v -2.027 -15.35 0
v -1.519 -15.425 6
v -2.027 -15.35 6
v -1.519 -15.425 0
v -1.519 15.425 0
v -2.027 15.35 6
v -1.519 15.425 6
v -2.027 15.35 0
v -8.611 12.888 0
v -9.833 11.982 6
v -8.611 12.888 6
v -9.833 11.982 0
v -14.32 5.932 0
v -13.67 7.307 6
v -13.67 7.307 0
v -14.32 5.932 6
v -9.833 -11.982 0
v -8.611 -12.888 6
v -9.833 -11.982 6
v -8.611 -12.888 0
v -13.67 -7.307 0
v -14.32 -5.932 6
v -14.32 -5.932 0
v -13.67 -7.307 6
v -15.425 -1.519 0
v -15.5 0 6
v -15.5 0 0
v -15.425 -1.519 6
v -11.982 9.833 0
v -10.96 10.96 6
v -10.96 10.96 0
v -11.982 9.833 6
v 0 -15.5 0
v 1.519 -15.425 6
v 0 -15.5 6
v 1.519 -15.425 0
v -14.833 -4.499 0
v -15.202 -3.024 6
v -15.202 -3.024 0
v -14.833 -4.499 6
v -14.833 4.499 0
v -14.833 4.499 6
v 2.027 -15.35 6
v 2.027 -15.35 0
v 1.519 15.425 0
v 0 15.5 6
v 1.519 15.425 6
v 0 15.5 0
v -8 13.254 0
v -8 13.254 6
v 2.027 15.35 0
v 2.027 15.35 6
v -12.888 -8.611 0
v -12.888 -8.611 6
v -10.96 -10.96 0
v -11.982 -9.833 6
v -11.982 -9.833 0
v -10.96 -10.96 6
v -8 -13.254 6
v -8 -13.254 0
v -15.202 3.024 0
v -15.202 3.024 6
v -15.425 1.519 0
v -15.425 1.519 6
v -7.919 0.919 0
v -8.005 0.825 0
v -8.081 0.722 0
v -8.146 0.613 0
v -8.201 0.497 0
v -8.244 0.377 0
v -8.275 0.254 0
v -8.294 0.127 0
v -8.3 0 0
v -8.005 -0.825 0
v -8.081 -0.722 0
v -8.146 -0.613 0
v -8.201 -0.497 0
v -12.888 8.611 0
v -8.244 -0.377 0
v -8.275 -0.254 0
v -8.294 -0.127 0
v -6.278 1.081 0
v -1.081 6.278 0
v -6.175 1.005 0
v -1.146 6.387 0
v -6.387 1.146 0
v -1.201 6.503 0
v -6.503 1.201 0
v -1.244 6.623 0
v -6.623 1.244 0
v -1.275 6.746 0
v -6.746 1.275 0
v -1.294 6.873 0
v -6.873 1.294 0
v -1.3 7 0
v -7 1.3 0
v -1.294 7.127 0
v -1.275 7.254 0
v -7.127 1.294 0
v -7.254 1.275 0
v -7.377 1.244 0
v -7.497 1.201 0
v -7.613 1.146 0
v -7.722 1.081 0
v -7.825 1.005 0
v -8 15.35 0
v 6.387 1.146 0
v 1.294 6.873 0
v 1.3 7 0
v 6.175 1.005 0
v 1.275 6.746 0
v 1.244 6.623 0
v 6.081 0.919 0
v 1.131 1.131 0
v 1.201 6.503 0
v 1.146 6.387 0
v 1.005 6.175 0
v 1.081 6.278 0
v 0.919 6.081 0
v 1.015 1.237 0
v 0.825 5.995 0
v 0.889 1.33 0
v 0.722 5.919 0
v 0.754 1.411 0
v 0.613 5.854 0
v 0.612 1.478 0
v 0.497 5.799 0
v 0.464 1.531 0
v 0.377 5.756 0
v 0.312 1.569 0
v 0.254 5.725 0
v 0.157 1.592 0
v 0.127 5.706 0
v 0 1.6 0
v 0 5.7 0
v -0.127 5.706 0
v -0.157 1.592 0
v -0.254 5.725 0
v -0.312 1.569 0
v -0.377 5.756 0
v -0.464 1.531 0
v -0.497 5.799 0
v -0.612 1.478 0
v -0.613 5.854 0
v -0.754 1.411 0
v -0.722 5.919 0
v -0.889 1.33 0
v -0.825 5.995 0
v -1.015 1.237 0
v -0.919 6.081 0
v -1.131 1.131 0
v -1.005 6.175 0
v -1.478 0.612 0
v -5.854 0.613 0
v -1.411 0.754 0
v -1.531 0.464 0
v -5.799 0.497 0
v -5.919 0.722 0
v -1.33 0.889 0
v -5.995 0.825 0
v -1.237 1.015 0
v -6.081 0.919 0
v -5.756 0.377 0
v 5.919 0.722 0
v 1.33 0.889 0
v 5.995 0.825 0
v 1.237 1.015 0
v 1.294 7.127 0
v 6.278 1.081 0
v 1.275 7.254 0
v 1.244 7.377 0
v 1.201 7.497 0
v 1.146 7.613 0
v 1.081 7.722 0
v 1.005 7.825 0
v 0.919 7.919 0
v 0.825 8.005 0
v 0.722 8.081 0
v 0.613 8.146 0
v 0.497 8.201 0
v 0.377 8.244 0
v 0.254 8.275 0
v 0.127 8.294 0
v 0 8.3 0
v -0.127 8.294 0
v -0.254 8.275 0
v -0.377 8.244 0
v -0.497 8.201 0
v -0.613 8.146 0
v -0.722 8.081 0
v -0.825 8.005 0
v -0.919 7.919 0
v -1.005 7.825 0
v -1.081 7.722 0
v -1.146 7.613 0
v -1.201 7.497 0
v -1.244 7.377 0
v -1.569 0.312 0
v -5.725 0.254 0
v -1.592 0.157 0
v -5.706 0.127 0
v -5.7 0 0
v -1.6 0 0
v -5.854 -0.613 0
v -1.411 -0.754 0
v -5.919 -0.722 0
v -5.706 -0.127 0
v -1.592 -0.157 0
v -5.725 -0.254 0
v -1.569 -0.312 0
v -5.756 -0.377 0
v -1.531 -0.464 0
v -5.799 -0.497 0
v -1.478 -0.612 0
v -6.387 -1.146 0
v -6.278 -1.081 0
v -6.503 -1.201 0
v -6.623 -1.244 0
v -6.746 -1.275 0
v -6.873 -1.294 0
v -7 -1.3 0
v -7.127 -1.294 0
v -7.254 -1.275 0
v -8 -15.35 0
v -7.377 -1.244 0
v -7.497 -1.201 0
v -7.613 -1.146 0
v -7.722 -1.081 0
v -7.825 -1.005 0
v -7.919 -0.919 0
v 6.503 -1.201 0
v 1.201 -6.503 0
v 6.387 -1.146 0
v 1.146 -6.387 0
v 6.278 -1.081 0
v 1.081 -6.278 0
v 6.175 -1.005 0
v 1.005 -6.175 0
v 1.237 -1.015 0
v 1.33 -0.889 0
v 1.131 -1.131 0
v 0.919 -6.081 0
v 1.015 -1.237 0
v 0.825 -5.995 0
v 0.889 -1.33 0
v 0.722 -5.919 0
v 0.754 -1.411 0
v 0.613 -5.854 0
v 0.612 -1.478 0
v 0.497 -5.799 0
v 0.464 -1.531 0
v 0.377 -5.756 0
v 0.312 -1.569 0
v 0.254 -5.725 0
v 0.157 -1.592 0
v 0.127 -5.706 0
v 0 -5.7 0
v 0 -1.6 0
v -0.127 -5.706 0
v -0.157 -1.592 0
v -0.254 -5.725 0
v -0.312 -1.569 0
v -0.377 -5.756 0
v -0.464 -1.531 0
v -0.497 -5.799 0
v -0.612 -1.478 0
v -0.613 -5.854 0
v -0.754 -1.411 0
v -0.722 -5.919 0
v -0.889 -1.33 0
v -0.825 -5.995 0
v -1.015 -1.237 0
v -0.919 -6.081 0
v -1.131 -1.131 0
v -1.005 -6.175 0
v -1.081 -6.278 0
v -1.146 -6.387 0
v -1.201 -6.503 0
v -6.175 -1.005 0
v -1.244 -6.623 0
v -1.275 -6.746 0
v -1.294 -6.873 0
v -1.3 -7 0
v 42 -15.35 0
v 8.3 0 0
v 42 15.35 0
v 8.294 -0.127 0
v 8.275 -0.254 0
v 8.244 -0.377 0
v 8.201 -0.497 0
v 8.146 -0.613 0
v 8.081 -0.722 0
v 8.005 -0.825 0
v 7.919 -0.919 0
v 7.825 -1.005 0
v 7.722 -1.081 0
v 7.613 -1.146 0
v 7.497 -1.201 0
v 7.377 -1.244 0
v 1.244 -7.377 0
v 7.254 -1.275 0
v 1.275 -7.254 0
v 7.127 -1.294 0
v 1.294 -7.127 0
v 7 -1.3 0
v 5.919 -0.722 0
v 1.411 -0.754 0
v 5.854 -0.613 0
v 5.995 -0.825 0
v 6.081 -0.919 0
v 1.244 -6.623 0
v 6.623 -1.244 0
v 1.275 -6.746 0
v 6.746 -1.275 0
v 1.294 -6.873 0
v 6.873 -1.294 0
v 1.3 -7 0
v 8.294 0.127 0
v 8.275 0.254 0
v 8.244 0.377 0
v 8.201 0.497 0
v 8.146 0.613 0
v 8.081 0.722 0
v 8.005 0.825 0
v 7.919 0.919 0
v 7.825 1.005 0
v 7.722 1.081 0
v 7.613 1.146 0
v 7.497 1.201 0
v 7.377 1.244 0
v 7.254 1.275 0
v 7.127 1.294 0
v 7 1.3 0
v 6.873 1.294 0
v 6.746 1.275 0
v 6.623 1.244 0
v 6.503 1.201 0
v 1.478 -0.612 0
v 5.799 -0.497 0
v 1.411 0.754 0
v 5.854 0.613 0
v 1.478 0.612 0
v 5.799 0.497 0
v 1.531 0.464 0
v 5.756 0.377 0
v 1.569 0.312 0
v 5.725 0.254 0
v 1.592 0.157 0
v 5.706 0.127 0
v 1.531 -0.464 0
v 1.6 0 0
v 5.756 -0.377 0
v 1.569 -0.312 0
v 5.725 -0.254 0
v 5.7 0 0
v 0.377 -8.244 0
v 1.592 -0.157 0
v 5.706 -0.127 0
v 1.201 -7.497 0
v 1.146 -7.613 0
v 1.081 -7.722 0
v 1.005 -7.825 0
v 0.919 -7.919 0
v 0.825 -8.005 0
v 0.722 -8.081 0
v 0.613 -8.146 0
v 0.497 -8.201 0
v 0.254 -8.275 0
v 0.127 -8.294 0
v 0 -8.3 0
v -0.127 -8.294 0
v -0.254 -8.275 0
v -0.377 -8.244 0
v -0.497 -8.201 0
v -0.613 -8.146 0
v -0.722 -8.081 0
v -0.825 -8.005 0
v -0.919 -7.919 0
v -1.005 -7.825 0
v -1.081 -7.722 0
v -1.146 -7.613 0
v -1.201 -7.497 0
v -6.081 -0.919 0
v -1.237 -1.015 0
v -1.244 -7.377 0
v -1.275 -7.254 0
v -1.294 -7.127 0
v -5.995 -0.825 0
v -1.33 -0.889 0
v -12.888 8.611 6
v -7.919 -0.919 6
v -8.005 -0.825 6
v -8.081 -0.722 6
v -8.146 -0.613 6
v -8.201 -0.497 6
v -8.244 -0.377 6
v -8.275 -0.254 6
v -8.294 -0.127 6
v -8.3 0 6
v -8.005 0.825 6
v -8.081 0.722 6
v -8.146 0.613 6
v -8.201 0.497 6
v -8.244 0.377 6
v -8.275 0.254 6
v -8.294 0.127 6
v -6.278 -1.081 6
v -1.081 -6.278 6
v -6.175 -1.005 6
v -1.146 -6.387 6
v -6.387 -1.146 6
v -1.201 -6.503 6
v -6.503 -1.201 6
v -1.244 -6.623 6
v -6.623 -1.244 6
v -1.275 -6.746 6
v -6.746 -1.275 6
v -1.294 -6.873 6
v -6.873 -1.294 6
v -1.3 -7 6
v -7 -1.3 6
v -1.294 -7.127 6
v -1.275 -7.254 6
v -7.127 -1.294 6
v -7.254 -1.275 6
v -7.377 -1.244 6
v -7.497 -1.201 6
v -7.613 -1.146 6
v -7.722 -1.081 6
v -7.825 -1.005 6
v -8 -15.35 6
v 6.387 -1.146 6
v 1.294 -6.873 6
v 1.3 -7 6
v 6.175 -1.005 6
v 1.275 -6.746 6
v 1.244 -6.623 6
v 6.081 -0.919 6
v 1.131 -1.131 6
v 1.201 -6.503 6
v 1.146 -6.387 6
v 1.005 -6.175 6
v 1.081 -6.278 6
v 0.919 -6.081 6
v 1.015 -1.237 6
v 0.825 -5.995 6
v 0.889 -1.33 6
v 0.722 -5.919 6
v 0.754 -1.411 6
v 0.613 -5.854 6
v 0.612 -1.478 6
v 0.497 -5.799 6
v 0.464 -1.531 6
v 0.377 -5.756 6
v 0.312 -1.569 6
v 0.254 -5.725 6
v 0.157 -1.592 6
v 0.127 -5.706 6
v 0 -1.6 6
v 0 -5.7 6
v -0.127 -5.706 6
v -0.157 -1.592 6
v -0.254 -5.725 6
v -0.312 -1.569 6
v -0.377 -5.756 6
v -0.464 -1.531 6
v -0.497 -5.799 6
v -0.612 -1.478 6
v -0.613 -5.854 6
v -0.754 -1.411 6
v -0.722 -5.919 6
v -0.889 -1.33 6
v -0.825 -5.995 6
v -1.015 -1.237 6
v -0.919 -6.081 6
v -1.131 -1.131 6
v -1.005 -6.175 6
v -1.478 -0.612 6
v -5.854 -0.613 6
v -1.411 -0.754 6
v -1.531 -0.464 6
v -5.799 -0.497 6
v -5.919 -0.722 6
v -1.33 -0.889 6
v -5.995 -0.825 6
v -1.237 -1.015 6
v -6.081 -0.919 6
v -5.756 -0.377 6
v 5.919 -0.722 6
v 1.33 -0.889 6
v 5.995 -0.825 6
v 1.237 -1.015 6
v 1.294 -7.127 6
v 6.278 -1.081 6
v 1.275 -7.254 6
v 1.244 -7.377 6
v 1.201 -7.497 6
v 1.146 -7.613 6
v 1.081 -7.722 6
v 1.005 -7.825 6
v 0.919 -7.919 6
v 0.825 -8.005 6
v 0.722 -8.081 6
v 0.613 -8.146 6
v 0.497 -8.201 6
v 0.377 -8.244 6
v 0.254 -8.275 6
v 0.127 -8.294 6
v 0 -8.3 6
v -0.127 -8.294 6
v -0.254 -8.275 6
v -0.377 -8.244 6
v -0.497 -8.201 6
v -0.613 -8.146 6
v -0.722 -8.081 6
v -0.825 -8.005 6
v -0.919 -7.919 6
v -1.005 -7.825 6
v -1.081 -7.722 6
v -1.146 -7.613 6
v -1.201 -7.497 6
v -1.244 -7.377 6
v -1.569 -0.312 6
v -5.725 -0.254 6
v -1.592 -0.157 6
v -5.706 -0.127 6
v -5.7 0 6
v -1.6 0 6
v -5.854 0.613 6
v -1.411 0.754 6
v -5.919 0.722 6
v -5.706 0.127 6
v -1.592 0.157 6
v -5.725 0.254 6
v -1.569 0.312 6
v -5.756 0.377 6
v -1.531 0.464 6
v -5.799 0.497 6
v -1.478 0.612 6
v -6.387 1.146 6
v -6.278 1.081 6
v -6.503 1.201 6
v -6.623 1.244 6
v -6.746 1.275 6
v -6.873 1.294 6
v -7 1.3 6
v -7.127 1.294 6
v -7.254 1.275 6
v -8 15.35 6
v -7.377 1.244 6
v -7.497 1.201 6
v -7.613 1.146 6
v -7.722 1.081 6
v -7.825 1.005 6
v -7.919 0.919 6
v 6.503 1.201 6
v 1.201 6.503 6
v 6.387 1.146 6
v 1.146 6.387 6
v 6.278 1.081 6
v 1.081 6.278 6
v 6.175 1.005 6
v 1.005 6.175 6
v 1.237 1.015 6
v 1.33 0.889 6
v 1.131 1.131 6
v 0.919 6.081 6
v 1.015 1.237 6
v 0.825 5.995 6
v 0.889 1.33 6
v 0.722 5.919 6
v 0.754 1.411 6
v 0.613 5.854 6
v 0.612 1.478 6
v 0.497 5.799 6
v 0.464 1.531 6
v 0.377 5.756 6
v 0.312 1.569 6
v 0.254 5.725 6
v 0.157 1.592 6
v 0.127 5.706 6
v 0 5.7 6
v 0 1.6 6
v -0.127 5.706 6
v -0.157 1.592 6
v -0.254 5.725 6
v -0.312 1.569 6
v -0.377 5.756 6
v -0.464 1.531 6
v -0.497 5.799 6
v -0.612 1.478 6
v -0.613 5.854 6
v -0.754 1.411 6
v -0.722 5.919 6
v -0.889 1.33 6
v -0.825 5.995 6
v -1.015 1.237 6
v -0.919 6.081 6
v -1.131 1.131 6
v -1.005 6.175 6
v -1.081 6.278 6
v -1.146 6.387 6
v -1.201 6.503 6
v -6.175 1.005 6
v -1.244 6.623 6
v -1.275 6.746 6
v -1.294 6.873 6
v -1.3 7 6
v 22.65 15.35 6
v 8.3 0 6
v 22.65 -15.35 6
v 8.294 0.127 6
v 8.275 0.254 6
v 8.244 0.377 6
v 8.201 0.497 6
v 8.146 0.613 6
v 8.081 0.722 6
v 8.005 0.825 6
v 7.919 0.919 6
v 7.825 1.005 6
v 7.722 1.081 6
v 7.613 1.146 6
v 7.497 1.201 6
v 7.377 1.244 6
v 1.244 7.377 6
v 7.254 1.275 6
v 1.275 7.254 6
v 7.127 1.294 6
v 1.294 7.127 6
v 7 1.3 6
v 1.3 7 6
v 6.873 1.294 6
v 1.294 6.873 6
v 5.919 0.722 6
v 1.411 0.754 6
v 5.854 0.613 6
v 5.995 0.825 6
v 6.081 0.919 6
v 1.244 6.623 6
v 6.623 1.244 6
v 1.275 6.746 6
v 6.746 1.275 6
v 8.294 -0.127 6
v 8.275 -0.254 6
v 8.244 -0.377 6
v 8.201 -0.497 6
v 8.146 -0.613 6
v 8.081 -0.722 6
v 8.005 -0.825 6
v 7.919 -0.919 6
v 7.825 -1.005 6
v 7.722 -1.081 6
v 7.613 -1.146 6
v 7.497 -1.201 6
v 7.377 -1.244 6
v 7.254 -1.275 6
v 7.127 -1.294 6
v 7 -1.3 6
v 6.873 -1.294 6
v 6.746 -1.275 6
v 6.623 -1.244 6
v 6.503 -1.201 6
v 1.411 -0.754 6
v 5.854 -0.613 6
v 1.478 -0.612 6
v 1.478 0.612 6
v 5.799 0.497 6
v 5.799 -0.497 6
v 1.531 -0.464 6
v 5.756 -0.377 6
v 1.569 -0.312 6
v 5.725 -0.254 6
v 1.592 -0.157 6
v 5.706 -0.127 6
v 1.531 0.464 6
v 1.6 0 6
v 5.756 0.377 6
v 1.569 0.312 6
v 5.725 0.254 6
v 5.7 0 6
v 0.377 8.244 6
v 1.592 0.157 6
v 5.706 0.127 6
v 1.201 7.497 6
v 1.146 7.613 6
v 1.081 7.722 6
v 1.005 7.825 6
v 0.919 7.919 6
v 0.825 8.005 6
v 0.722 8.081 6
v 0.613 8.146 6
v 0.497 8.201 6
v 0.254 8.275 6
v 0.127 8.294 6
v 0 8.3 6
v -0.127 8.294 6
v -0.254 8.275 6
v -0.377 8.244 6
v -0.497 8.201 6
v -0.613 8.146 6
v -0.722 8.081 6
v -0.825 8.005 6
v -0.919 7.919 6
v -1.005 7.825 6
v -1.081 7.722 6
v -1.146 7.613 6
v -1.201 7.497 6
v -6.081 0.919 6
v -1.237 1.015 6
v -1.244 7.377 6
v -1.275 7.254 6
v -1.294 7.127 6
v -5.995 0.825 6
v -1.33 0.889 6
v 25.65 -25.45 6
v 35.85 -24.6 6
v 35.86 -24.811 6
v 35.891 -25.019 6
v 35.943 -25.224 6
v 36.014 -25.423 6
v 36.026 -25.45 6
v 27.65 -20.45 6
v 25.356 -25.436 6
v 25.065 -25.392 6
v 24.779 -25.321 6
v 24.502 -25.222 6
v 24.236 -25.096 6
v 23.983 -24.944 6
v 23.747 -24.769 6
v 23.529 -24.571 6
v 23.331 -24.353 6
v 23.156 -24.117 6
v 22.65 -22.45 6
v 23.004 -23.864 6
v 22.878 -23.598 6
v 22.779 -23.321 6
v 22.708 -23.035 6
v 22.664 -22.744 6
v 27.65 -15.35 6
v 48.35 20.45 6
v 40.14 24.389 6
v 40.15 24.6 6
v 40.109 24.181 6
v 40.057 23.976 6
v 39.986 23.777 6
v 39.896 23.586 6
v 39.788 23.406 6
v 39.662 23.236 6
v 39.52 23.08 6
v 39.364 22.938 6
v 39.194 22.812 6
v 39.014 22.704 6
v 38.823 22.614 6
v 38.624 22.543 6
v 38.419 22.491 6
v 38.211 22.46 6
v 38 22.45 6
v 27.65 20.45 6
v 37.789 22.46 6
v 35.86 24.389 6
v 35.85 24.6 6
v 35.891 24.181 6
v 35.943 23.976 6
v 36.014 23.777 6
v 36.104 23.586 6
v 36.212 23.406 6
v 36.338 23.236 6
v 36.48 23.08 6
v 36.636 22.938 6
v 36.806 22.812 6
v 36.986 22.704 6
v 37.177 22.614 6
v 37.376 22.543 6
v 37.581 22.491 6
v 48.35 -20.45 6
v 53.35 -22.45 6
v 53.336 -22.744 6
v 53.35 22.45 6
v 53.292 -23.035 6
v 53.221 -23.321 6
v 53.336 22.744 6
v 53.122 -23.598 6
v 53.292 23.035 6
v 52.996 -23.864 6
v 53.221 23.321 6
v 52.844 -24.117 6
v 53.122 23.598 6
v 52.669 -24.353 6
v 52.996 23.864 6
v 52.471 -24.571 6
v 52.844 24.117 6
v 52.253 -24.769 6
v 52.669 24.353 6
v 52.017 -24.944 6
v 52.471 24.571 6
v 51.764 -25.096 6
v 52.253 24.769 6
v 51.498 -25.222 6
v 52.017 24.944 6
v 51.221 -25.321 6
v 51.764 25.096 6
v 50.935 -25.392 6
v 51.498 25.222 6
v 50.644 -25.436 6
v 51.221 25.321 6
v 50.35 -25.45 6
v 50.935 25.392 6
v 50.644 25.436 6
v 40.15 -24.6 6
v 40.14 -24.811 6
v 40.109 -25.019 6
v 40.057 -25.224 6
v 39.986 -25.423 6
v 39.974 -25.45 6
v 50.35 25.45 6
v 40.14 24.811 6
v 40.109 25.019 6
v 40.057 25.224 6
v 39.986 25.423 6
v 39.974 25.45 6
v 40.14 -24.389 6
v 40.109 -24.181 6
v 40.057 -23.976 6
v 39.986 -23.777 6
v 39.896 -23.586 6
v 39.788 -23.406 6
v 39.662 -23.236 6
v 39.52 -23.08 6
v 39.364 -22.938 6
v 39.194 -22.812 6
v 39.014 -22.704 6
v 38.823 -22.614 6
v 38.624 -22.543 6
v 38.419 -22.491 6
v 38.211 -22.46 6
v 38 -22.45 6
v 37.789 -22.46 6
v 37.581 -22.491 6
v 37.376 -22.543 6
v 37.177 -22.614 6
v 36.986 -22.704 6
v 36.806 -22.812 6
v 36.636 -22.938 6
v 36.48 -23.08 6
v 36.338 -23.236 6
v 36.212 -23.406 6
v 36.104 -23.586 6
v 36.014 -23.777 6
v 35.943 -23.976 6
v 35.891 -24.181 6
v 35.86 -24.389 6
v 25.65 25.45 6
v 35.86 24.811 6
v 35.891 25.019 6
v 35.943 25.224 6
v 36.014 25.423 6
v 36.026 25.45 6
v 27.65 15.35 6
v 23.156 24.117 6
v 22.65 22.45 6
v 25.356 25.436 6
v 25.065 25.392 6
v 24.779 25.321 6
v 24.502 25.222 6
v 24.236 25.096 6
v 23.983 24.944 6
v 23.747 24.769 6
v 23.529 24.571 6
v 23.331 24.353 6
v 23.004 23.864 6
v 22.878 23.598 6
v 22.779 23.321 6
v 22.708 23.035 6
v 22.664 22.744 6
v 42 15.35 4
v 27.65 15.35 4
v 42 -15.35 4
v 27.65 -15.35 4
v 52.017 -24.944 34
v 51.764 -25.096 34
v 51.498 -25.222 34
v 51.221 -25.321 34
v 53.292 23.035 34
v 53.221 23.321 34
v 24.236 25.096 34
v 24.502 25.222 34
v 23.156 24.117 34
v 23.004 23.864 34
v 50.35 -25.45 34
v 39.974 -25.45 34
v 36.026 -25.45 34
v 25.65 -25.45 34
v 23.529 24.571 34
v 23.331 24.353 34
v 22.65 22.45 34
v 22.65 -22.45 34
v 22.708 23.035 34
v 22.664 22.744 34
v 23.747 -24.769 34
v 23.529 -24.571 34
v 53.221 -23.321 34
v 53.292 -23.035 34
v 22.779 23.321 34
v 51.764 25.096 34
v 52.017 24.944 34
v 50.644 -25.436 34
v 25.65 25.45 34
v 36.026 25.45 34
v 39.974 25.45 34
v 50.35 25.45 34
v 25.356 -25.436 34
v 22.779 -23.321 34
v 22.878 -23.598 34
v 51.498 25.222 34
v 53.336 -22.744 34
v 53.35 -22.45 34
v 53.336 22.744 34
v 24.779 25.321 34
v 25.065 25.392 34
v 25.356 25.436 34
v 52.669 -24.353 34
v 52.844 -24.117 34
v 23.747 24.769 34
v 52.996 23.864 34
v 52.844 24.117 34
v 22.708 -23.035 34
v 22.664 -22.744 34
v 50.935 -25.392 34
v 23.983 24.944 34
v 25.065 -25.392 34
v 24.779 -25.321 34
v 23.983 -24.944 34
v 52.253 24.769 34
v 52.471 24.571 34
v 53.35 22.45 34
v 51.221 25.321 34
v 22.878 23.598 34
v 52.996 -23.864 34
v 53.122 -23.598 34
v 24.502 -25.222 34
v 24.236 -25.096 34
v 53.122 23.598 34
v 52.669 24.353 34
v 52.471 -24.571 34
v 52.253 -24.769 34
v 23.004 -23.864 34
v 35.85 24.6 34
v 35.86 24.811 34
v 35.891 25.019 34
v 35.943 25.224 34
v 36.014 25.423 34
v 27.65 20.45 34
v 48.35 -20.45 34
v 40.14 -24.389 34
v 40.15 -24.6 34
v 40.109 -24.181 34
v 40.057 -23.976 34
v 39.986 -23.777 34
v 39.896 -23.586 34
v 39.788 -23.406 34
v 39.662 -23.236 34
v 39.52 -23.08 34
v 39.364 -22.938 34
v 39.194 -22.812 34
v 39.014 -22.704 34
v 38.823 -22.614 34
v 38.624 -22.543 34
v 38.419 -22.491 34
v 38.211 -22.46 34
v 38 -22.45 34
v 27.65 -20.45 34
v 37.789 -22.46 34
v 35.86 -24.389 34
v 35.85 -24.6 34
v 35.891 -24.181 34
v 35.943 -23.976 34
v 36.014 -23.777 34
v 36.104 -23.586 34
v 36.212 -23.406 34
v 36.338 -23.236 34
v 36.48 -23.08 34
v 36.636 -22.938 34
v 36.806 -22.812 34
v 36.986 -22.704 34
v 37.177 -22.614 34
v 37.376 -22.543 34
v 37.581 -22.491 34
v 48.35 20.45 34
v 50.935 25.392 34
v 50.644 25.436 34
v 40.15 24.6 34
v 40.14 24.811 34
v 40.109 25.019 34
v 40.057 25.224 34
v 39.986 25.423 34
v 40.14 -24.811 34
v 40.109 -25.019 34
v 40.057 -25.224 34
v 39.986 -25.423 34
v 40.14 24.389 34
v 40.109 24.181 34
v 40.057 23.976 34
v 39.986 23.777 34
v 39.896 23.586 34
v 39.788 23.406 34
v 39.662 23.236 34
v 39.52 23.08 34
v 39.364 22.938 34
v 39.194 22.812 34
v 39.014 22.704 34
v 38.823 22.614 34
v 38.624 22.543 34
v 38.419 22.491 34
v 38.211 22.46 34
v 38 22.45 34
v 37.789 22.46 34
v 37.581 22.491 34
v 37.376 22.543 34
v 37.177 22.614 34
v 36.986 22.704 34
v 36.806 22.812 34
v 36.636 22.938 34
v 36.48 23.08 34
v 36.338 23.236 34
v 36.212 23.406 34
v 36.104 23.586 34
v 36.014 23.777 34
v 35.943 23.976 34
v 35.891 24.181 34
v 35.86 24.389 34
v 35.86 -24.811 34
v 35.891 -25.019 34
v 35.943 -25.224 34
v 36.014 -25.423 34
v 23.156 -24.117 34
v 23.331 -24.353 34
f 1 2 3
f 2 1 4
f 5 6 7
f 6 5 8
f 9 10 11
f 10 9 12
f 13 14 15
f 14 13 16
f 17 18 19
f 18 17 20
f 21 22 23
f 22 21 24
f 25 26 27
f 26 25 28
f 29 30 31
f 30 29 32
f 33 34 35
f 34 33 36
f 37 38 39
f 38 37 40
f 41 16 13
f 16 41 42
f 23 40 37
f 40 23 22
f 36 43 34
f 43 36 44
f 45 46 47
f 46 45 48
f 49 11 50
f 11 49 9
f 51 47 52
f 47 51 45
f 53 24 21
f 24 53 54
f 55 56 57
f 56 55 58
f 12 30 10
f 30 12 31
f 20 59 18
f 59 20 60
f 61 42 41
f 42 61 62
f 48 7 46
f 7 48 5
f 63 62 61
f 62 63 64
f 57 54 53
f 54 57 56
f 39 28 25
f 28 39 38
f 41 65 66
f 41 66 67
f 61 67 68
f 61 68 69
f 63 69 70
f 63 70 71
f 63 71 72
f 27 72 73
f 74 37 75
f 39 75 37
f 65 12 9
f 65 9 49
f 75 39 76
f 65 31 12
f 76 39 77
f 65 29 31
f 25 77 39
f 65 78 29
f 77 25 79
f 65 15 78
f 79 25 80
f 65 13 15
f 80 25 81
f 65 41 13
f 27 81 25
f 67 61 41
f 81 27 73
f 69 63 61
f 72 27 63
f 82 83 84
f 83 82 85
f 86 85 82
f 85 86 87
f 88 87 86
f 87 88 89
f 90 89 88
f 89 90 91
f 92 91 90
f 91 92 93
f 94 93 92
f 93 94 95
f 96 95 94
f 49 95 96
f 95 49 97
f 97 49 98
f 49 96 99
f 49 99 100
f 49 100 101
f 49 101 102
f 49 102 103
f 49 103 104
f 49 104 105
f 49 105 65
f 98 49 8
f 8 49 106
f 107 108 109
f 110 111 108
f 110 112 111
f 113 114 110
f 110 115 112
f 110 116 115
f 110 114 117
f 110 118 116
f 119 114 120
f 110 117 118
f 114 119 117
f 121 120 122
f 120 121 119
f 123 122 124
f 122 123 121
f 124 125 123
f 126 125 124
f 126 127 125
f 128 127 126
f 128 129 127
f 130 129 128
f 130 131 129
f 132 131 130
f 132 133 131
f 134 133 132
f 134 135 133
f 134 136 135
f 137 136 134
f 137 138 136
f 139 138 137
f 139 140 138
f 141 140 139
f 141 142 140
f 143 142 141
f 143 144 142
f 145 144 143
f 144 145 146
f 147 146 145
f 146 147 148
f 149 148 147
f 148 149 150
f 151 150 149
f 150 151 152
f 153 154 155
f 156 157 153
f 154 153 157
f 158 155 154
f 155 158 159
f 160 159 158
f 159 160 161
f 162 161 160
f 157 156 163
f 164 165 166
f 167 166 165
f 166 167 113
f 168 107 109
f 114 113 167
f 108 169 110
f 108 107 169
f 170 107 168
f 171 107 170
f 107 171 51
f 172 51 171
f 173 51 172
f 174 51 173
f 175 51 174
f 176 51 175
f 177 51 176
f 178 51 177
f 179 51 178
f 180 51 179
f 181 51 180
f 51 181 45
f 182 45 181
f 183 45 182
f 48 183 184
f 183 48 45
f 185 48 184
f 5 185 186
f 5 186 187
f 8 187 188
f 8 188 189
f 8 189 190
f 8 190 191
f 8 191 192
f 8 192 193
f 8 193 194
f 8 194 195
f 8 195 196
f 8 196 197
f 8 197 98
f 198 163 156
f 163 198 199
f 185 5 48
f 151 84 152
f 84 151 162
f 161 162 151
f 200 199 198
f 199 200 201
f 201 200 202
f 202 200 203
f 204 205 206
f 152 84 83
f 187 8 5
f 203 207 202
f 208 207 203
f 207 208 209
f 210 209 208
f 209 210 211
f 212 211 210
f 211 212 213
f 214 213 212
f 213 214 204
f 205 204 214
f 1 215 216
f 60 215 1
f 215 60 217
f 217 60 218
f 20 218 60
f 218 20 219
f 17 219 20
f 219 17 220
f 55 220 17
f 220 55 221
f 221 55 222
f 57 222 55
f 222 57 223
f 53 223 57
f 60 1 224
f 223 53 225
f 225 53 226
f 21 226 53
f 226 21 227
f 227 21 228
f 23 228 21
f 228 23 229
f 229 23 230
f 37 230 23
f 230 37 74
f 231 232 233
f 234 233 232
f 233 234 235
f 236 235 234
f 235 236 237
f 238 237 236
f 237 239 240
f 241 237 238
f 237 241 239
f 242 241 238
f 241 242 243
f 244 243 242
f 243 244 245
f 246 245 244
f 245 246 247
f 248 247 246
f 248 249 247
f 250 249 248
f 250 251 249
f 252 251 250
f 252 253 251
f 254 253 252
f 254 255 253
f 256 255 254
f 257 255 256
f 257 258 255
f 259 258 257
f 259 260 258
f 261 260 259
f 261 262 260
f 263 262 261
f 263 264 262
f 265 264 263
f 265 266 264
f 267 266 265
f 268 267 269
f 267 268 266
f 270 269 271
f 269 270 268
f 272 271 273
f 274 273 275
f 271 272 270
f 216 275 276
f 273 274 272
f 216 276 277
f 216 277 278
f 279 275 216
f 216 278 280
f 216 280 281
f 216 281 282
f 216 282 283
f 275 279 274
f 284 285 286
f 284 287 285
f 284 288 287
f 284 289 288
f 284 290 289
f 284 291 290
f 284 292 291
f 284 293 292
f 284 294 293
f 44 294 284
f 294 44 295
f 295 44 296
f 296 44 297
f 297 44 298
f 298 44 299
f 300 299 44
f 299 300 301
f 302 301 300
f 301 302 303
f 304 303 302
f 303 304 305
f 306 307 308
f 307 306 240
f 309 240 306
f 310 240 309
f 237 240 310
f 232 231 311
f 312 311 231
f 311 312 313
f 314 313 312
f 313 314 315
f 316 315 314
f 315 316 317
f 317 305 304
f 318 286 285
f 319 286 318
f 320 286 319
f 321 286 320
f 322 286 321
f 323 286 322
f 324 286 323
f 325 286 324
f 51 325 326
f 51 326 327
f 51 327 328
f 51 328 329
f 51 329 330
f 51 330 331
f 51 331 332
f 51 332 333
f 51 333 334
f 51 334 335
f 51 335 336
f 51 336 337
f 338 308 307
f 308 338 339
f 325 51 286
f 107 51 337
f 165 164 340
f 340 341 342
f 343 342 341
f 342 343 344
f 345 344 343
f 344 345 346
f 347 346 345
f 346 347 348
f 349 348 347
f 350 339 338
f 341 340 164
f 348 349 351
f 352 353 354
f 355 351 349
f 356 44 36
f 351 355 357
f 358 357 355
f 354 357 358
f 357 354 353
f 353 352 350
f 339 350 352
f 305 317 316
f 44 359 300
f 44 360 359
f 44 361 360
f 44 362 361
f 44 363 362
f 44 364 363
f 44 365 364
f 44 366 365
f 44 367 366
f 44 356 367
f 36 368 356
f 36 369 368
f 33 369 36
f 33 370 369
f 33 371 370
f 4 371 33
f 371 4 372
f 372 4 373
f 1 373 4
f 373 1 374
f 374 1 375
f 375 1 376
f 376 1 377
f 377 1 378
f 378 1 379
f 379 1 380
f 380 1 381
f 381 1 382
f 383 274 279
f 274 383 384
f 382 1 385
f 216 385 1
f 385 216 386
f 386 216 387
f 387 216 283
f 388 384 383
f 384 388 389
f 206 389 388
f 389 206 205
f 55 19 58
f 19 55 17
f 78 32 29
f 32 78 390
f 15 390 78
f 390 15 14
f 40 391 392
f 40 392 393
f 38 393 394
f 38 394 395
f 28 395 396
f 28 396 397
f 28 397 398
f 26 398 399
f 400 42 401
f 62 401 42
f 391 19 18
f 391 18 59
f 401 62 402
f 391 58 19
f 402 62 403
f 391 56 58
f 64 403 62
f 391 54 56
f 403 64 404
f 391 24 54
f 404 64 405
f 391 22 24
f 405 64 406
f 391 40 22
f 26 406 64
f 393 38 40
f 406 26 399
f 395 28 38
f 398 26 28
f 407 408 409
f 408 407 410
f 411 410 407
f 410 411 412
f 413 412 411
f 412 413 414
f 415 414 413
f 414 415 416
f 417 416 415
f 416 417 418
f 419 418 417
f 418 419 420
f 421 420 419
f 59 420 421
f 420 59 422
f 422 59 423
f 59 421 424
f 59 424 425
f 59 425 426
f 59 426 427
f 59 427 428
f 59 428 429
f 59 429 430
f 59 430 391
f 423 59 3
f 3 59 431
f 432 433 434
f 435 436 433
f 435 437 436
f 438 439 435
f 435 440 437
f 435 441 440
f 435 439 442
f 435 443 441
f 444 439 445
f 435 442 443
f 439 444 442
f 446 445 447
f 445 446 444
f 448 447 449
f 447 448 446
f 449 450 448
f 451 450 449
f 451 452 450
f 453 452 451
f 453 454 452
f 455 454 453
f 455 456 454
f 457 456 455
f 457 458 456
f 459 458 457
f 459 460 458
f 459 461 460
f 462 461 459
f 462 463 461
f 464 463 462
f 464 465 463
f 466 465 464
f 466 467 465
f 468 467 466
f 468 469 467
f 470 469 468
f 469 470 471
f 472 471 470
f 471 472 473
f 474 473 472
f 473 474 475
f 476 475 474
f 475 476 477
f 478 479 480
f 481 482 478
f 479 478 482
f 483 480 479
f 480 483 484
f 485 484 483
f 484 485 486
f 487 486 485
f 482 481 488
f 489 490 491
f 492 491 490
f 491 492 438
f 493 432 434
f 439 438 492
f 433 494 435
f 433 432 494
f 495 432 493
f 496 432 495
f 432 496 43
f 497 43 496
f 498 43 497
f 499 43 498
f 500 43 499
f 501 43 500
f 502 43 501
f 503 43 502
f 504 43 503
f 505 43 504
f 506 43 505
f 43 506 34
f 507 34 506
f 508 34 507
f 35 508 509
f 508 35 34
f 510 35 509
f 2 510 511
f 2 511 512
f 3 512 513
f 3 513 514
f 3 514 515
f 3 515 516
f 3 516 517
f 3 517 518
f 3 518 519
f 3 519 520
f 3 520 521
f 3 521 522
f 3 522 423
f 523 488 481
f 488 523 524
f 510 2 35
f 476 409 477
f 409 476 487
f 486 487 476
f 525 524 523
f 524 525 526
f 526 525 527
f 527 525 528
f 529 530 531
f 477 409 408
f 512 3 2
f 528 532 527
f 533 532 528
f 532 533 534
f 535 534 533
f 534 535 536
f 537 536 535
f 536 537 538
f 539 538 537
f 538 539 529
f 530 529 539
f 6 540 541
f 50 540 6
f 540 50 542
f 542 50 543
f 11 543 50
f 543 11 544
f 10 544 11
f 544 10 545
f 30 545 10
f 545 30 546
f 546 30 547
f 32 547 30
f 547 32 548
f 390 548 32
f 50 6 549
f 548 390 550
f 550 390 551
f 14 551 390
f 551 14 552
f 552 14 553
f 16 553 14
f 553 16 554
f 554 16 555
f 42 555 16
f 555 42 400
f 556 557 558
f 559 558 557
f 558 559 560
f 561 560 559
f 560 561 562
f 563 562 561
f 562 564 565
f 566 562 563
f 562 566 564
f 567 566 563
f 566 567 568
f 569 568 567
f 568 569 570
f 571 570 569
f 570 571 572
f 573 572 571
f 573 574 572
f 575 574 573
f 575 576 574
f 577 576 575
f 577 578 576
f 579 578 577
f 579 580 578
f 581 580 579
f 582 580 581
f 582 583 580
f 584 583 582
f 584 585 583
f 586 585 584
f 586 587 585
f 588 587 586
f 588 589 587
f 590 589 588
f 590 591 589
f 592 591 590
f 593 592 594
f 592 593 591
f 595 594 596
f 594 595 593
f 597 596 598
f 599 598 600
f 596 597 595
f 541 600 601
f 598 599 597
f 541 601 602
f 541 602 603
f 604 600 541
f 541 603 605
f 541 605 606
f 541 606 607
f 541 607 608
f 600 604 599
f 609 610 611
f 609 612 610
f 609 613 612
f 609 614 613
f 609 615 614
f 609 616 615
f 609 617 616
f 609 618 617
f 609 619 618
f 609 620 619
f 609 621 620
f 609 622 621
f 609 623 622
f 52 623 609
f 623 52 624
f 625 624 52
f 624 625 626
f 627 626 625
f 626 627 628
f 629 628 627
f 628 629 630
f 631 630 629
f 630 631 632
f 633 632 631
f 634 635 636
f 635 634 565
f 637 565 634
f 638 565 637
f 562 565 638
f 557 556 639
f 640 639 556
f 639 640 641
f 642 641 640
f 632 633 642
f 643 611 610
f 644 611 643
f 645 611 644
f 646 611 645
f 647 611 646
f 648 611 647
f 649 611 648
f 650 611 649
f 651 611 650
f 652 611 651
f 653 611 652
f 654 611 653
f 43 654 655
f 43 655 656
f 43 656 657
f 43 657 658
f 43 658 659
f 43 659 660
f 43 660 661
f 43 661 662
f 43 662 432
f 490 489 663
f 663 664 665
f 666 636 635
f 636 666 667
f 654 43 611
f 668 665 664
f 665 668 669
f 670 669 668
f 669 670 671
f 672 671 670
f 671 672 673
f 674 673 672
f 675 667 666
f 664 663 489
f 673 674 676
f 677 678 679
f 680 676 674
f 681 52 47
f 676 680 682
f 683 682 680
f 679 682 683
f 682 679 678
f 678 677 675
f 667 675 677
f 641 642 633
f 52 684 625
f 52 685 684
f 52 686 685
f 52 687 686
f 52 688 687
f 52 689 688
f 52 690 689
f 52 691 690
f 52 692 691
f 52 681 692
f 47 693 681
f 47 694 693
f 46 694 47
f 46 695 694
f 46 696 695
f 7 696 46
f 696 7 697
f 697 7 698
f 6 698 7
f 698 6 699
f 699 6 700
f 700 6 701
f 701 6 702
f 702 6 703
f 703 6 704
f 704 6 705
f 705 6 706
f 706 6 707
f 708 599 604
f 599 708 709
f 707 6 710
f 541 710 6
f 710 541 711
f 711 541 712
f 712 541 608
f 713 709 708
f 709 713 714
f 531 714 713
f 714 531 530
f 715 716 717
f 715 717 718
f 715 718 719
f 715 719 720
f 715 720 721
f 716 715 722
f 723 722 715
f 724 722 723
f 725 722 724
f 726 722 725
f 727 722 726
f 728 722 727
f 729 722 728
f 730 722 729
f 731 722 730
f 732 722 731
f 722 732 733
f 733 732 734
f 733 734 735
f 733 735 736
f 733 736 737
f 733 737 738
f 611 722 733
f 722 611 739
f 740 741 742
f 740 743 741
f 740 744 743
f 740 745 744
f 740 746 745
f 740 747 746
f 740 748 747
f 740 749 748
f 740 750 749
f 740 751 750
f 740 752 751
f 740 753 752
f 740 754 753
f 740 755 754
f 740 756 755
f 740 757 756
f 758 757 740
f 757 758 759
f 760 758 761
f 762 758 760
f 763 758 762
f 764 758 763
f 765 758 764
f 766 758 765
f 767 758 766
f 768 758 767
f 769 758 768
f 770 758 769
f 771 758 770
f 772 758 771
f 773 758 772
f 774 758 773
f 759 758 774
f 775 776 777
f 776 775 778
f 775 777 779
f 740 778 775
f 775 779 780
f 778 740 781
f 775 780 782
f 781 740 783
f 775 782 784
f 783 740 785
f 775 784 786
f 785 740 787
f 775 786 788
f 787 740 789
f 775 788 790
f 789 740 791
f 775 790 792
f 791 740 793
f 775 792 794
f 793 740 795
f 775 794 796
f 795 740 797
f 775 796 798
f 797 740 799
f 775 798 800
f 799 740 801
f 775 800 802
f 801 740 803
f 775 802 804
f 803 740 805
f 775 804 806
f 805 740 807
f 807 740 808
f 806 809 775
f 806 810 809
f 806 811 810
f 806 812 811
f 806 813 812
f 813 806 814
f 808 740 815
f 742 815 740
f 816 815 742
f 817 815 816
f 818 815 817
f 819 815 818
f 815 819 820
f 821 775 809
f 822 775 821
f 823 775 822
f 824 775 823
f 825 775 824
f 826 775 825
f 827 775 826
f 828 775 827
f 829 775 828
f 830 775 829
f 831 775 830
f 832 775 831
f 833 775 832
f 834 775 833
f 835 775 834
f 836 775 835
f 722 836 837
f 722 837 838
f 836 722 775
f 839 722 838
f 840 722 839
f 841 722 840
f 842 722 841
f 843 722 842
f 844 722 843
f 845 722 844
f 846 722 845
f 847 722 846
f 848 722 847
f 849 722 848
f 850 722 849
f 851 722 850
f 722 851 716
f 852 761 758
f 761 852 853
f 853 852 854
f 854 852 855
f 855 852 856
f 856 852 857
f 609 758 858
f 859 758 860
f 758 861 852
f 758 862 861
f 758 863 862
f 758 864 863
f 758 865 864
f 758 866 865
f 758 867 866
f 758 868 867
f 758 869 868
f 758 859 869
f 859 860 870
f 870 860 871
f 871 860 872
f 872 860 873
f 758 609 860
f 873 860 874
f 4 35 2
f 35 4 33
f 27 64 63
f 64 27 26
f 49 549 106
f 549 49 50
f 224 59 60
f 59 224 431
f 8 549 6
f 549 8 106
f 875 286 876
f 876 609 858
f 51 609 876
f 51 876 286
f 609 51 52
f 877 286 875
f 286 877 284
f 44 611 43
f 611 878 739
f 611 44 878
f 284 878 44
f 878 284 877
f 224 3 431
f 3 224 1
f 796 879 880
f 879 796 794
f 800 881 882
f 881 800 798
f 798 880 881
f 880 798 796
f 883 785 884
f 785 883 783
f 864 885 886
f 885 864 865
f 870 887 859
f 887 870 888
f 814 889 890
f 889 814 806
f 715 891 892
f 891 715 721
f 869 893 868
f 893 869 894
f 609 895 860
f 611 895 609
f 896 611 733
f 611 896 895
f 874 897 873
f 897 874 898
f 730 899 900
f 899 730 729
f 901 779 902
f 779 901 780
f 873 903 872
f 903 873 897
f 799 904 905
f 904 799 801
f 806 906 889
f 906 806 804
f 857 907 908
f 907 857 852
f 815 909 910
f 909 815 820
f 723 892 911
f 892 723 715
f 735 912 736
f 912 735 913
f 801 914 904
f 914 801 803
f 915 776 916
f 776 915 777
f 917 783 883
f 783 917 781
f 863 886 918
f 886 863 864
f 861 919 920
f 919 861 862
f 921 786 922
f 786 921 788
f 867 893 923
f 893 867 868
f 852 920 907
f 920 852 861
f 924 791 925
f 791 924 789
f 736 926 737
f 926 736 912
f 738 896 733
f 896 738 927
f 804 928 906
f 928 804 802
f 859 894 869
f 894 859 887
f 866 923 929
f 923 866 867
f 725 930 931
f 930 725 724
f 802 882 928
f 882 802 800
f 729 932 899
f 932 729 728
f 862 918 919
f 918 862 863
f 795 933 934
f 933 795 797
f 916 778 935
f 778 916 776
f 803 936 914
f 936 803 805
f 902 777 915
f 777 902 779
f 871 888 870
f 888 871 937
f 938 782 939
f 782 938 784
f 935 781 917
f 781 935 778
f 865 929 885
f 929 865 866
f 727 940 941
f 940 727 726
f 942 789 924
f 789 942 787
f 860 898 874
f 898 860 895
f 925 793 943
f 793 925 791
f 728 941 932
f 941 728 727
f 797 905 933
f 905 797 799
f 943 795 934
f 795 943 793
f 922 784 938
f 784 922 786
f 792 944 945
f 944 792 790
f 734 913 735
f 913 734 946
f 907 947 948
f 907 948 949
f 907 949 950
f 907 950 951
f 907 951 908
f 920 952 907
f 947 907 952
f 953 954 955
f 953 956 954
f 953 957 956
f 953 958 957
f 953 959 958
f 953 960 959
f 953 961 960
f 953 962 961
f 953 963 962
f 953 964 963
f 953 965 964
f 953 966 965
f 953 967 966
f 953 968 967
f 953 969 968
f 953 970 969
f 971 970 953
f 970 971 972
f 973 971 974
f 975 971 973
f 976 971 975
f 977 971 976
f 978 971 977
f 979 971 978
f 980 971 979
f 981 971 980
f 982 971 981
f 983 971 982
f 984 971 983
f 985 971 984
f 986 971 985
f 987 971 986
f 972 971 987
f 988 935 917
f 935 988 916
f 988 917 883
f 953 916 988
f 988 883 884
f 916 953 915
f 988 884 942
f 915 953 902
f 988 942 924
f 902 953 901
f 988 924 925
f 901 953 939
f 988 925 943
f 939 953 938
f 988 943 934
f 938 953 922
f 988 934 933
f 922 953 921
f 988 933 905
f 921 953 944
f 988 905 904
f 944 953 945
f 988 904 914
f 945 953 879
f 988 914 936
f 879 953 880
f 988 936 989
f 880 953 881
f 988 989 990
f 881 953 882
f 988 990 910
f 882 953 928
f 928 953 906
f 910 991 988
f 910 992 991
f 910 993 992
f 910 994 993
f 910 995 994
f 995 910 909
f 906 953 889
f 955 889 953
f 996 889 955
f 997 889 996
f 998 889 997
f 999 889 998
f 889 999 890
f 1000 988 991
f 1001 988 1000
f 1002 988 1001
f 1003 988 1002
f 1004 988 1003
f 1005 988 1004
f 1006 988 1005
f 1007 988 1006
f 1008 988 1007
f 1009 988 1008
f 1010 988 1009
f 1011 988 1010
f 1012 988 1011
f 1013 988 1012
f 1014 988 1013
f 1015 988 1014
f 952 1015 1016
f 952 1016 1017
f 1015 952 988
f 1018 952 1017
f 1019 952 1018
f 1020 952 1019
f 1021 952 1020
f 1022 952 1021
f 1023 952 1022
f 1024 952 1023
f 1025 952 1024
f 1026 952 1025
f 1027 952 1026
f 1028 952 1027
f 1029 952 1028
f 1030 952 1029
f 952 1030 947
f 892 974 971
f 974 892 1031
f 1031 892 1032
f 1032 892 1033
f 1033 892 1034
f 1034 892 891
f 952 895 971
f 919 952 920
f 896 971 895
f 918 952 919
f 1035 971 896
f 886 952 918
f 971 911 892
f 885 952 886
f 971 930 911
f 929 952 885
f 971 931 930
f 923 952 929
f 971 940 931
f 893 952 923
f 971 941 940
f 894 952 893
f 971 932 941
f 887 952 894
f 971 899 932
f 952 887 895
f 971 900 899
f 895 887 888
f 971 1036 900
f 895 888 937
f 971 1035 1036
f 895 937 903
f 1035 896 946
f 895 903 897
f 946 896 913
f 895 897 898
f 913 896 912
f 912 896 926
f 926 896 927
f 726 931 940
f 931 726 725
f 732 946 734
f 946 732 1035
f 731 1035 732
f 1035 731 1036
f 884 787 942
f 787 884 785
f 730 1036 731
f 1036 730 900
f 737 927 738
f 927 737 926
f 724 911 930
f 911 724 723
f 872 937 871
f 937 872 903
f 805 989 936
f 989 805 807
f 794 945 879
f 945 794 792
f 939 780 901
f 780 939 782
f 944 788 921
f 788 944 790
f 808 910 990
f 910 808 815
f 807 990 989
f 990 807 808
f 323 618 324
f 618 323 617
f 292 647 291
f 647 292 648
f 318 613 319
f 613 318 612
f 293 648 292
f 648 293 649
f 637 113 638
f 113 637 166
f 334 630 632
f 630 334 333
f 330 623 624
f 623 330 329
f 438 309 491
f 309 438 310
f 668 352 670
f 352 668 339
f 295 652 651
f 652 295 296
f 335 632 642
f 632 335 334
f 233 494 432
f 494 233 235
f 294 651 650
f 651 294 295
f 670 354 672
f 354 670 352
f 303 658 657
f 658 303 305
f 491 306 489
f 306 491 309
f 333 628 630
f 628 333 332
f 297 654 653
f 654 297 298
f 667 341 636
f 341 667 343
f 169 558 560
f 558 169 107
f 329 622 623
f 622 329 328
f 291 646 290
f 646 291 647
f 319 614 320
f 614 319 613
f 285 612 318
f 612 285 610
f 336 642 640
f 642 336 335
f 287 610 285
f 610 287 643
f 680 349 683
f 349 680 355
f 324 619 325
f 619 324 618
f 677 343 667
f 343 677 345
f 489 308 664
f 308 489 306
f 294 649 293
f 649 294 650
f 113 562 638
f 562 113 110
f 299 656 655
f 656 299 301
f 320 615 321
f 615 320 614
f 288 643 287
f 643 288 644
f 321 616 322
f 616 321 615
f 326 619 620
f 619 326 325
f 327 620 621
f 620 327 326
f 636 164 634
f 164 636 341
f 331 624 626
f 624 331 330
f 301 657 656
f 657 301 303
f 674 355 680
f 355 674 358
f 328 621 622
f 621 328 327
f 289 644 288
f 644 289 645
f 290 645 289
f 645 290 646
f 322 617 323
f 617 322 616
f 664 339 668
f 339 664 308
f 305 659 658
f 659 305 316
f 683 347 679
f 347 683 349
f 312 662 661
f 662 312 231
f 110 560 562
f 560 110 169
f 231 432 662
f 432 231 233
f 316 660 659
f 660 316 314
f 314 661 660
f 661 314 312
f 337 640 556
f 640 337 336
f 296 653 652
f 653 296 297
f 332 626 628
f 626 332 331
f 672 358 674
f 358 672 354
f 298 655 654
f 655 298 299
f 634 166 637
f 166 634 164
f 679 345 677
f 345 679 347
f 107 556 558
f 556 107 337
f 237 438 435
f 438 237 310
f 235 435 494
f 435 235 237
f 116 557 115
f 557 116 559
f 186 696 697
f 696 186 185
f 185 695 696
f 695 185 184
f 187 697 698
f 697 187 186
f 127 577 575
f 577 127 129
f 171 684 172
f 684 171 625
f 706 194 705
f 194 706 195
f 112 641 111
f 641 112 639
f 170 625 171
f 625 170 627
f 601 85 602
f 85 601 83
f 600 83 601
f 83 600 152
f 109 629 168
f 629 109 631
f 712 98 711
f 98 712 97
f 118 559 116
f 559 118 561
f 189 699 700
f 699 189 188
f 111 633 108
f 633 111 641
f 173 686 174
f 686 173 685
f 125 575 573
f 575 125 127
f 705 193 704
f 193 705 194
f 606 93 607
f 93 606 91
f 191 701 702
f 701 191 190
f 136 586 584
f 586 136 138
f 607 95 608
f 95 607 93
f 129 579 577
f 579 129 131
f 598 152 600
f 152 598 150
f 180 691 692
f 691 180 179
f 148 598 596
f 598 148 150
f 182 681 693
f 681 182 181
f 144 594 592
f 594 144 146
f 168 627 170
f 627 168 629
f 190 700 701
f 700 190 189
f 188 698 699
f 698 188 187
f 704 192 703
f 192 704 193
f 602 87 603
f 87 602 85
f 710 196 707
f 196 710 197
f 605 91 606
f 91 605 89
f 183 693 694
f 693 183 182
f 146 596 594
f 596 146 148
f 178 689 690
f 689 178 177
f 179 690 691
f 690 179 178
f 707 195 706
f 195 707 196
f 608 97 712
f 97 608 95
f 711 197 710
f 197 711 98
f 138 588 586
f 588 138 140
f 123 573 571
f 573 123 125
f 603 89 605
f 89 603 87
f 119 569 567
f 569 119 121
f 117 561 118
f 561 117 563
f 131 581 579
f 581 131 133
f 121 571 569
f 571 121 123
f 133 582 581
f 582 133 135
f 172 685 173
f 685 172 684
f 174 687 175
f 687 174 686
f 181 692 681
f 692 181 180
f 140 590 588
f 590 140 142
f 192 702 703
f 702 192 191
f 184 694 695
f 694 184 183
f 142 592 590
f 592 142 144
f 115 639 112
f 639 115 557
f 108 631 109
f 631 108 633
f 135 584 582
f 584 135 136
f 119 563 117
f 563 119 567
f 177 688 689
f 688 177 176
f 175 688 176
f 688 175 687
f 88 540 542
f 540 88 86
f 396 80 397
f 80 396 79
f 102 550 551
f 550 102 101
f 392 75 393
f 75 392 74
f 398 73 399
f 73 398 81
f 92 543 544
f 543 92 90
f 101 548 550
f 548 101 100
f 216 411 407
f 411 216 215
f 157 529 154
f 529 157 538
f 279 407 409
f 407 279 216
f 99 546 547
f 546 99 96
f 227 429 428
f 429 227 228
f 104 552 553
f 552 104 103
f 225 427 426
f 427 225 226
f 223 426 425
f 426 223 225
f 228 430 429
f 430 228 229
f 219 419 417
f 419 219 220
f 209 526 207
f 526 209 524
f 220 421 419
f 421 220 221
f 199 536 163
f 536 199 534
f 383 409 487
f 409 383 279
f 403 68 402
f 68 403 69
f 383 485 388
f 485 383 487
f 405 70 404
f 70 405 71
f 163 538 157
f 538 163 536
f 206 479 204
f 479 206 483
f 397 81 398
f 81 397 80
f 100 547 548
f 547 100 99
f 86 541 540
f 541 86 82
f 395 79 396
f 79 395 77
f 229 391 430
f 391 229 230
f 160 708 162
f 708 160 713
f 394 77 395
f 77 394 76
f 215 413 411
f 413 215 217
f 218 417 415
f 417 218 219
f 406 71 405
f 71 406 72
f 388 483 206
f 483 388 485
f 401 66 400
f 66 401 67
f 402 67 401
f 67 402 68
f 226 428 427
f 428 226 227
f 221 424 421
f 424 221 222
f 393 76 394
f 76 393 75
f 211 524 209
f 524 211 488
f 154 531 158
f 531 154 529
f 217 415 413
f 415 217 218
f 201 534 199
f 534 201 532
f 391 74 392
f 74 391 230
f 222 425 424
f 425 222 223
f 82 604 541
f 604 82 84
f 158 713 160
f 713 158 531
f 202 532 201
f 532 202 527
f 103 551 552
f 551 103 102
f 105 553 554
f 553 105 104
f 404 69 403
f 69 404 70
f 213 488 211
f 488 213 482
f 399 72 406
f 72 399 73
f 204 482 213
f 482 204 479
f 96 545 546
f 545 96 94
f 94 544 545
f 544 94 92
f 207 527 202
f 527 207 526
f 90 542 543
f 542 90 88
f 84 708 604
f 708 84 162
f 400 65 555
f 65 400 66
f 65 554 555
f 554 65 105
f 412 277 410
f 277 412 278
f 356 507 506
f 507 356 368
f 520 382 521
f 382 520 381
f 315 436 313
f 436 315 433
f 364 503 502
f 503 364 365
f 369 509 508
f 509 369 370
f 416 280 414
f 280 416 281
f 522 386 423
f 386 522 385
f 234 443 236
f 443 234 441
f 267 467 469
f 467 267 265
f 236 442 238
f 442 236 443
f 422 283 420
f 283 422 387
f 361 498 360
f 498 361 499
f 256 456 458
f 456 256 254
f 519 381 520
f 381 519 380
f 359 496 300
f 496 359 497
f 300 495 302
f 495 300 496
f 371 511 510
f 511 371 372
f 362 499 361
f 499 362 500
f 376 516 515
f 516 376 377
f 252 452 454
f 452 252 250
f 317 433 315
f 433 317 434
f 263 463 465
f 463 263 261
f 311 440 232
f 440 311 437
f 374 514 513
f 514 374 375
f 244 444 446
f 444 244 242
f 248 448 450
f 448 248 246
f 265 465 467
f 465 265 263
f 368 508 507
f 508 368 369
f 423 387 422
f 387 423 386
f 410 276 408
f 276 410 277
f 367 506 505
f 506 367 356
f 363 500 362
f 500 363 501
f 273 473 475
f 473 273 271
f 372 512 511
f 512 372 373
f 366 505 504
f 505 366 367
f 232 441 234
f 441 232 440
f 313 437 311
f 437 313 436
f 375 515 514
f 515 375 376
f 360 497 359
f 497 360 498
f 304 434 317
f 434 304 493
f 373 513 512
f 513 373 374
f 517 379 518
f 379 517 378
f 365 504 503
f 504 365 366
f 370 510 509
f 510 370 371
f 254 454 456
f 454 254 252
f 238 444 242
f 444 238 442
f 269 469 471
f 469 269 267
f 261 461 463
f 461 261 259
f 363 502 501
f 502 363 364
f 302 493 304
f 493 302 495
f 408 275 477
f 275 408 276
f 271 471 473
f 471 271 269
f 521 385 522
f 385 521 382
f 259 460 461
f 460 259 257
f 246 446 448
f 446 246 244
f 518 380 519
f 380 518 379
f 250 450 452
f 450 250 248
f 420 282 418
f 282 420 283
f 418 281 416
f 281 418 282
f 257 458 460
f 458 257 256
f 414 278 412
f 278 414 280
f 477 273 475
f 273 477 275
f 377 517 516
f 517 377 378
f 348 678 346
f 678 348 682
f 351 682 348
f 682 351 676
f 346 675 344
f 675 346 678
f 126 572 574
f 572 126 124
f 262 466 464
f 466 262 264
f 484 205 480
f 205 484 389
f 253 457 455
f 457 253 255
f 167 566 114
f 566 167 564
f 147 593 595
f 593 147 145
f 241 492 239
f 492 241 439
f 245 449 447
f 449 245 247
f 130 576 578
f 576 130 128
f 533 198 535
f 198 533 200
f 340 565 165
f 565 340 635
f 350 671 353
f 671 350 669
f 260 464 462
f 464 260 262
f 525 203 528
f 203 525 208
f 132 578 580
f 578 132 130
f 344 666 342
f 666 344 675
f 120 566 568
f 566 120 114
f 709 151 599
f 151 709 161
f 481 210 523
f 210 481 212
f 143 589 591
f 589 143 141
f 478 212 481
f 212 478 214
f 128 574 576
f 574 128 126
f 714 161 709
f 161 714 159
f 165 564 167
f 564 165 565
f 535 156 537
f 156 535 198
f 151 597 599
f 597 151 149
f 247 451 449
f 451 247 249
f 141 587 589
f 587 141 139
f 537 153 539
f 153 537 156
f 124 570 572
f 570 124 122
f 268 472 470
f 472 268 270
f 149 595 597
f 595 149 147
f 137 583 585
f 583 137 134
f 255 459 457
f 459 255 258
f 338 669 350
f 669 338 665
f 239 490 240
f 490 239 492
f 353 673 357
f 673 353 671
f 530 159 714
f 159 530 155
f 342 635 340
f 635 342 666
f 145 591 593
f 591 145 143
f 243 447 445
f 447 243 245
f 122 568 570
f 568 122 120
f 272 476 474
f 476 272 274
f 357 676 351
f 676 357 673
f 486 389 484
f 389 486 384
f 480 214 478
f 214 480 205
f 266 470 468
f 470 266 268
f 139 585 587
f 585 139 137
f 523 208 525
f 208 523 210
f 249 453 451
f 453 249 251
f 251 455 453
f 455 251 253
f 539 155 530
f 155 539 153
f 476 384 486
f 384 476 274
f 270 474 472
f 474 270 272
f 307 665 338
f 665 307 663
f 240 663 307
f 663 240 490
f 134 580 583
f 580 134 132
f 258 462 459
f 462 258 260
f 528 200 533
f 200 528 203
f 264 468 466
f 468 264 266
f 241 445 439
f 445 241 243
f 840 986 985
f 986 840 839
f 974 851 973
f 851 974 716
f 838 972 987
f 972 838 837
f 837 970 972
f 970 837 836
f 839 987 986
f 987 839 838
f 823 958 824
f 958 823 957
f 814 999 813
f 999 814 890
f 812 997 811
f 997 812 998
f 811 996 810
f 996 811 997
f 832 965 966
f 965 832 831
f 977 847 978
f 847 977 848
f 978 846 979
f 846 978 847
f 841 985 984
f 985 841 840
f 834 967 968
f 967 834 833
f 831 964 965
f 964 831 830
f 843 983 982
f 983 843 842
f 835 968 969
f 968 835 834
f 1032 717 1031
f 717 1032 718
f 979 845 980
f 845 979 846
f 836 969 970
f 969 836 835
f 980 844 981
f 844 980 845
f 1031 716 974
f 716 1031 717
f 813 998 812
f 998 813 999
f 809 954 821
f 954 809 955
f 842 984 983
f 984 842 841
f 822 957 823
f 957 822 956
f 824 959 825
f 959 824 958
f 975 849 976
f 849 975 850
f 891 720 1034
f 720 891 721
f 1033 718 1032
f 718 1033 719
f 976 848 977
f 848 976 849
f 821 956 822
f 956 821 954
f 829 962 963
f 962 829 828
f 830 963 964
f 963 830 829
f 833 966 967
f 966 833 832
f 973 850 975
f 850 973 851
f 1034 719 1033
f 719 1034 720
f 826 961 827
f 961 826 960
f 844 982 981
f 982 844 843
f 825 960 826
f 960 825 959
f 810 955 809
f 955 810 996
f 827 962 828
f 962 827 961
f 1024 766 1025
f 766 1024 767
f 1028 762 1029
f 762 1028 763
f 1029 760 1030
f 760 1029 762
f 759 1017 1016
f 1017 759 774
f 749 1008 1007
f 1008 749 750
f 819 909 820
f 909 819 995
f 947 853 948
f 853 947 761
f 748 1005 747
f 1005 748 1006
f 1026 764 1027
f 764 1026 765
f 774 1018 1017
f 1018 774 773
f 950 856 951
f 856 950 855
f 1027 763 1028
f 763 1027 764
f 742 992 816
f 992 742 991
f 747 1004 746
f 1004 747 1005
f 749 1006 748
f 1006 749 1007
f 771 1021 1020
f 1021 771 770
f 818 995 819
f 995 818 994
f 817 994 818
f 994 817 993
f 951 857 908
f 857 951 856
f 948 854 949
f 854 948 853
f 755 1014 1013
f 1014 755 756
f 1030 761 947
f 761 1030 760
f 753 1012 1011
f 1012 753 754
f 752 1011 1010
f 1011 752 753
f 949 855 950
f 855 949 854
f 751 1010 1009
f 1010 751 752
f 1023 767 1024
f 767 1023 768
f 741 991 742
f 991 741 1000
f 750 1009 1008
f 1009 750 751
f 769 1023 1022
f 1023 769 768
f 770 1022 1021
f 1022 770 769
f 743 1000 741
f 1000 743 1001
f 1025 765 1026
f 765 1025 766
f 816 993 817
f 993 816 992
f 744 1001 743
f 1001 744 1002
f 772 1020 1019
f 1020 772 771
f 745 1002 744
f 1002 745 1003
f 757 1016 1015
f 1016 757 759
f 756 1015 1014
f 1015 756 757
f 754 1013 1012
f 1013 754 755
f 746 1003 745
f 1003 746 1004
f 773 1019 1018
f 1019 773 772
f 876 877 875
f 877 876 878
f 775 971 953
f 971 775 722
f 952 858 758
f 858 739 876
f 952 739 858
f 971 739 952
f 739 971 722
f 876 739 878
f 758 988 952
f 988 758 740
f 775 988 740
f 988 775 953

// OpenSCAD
// file: common.scad
// KARAKURI shared parameters and helpers
// All dimensions in millimetres. Holes are printed undersize-safe:
// M3 through 3.4, M4 through 4.5, M2.5 through 2.9, quarter-inch 6.6.

$fn = 64;

m2_5 = 2.9;
m3 = 3.4;
m4 = 4.5;
quarter_inch = 6.6;

module rounded_plate(x, y, t, r = 8) {
    linear_extrude(t)
        offset(r = r) offset(delta = -r)
            square([x, y], center = true);
}

module hole(d, h) {
    translate([0, 0, -0.5]) cylinder(d = d, h = h + 1);
}

module slot(d, len, h) {
    translate([0, 0, -0.5])
        linear_extrude(h + 1)
            hull() {
                translate([-len / 2, 0]) circle(d = d);
                translate([ len / 2, 0]) circle(d = d);
            }
}

module four_holes(dx, dy, d, h) {
    for (sx = [-1, 1], sy = [-1, 1])
        translate([sx * dx / 2, sy * dy / 2, 0]) hole(d, h);
}
// file: servo_common.scad
// Shared pocket and horn geometry for standard size hobby servos
// (DS3225, MG996R class: 40.7 x 20.5 body, 49 mm tab hole spacing).

include <common.scad>

servo_l = 40.9;
servo_w = 20.7;
servo_tab_span = 49.2;
servo_tab_hole = 4.3;
servo_horn_circle = 21;   // round horn diameter
horn_screw = 2.6;

module servo_pocket(depth = 26) {
    // Cut this from a solid to seat a servo, tabs resting on the face
    translate([0, 0, -depth]) linear_extrude(depth + 0.01)
        square([servo_l, servo_w], center = true);
    for (x = [-servo_tab_span / 2, servo_tab_span / 2])
        translate([x, 0, -depth]) cylinder(d = servo_tab_hole, h = depth + 10);
}

module horn_holes(t) {
    // Centre screw plus 4 horn screws on a 14 mm circle
    hole(3.2, t);
    for (a = [0, 90, 180, 270])
        rotate([0, 0, a]) translate([7, 0, 0]) hole(horn_screw, t);
}
// main file
// Coxa: short link from the hip servo horn to the femur servo, which
// it carries rotated 90 degrees so the femur swings vertically.
// Print 4, flat down, no supports.
include <servo_common.scad>

coxa_len = 34;

module leg_coxa() {
    difference() {
        union() {
            cylinder(d = servo_horn_circle + 10, h = 6);
            translate([0, -((servo_w + 10) / 2), 0])
                linear_extrude(6)
                    translate([coxa_len / 2, (servo_w + 10) / 2])
                        square([coxa_len + 16, servo_w + 10], center = true);
            translate([coxa_len + 4, 0, 6]) linear_extrude(28)
                offset(r = 3) offset(delta = -3)
                    square([servo_w + 10, servo_l + 10], center = true);
        }
        horn_holes(6);
        translate([coxa_len + 4, 0, 34]) rotate([0, 0, 90]) servo_pocket(30);
    }
}
leg_coxa();
